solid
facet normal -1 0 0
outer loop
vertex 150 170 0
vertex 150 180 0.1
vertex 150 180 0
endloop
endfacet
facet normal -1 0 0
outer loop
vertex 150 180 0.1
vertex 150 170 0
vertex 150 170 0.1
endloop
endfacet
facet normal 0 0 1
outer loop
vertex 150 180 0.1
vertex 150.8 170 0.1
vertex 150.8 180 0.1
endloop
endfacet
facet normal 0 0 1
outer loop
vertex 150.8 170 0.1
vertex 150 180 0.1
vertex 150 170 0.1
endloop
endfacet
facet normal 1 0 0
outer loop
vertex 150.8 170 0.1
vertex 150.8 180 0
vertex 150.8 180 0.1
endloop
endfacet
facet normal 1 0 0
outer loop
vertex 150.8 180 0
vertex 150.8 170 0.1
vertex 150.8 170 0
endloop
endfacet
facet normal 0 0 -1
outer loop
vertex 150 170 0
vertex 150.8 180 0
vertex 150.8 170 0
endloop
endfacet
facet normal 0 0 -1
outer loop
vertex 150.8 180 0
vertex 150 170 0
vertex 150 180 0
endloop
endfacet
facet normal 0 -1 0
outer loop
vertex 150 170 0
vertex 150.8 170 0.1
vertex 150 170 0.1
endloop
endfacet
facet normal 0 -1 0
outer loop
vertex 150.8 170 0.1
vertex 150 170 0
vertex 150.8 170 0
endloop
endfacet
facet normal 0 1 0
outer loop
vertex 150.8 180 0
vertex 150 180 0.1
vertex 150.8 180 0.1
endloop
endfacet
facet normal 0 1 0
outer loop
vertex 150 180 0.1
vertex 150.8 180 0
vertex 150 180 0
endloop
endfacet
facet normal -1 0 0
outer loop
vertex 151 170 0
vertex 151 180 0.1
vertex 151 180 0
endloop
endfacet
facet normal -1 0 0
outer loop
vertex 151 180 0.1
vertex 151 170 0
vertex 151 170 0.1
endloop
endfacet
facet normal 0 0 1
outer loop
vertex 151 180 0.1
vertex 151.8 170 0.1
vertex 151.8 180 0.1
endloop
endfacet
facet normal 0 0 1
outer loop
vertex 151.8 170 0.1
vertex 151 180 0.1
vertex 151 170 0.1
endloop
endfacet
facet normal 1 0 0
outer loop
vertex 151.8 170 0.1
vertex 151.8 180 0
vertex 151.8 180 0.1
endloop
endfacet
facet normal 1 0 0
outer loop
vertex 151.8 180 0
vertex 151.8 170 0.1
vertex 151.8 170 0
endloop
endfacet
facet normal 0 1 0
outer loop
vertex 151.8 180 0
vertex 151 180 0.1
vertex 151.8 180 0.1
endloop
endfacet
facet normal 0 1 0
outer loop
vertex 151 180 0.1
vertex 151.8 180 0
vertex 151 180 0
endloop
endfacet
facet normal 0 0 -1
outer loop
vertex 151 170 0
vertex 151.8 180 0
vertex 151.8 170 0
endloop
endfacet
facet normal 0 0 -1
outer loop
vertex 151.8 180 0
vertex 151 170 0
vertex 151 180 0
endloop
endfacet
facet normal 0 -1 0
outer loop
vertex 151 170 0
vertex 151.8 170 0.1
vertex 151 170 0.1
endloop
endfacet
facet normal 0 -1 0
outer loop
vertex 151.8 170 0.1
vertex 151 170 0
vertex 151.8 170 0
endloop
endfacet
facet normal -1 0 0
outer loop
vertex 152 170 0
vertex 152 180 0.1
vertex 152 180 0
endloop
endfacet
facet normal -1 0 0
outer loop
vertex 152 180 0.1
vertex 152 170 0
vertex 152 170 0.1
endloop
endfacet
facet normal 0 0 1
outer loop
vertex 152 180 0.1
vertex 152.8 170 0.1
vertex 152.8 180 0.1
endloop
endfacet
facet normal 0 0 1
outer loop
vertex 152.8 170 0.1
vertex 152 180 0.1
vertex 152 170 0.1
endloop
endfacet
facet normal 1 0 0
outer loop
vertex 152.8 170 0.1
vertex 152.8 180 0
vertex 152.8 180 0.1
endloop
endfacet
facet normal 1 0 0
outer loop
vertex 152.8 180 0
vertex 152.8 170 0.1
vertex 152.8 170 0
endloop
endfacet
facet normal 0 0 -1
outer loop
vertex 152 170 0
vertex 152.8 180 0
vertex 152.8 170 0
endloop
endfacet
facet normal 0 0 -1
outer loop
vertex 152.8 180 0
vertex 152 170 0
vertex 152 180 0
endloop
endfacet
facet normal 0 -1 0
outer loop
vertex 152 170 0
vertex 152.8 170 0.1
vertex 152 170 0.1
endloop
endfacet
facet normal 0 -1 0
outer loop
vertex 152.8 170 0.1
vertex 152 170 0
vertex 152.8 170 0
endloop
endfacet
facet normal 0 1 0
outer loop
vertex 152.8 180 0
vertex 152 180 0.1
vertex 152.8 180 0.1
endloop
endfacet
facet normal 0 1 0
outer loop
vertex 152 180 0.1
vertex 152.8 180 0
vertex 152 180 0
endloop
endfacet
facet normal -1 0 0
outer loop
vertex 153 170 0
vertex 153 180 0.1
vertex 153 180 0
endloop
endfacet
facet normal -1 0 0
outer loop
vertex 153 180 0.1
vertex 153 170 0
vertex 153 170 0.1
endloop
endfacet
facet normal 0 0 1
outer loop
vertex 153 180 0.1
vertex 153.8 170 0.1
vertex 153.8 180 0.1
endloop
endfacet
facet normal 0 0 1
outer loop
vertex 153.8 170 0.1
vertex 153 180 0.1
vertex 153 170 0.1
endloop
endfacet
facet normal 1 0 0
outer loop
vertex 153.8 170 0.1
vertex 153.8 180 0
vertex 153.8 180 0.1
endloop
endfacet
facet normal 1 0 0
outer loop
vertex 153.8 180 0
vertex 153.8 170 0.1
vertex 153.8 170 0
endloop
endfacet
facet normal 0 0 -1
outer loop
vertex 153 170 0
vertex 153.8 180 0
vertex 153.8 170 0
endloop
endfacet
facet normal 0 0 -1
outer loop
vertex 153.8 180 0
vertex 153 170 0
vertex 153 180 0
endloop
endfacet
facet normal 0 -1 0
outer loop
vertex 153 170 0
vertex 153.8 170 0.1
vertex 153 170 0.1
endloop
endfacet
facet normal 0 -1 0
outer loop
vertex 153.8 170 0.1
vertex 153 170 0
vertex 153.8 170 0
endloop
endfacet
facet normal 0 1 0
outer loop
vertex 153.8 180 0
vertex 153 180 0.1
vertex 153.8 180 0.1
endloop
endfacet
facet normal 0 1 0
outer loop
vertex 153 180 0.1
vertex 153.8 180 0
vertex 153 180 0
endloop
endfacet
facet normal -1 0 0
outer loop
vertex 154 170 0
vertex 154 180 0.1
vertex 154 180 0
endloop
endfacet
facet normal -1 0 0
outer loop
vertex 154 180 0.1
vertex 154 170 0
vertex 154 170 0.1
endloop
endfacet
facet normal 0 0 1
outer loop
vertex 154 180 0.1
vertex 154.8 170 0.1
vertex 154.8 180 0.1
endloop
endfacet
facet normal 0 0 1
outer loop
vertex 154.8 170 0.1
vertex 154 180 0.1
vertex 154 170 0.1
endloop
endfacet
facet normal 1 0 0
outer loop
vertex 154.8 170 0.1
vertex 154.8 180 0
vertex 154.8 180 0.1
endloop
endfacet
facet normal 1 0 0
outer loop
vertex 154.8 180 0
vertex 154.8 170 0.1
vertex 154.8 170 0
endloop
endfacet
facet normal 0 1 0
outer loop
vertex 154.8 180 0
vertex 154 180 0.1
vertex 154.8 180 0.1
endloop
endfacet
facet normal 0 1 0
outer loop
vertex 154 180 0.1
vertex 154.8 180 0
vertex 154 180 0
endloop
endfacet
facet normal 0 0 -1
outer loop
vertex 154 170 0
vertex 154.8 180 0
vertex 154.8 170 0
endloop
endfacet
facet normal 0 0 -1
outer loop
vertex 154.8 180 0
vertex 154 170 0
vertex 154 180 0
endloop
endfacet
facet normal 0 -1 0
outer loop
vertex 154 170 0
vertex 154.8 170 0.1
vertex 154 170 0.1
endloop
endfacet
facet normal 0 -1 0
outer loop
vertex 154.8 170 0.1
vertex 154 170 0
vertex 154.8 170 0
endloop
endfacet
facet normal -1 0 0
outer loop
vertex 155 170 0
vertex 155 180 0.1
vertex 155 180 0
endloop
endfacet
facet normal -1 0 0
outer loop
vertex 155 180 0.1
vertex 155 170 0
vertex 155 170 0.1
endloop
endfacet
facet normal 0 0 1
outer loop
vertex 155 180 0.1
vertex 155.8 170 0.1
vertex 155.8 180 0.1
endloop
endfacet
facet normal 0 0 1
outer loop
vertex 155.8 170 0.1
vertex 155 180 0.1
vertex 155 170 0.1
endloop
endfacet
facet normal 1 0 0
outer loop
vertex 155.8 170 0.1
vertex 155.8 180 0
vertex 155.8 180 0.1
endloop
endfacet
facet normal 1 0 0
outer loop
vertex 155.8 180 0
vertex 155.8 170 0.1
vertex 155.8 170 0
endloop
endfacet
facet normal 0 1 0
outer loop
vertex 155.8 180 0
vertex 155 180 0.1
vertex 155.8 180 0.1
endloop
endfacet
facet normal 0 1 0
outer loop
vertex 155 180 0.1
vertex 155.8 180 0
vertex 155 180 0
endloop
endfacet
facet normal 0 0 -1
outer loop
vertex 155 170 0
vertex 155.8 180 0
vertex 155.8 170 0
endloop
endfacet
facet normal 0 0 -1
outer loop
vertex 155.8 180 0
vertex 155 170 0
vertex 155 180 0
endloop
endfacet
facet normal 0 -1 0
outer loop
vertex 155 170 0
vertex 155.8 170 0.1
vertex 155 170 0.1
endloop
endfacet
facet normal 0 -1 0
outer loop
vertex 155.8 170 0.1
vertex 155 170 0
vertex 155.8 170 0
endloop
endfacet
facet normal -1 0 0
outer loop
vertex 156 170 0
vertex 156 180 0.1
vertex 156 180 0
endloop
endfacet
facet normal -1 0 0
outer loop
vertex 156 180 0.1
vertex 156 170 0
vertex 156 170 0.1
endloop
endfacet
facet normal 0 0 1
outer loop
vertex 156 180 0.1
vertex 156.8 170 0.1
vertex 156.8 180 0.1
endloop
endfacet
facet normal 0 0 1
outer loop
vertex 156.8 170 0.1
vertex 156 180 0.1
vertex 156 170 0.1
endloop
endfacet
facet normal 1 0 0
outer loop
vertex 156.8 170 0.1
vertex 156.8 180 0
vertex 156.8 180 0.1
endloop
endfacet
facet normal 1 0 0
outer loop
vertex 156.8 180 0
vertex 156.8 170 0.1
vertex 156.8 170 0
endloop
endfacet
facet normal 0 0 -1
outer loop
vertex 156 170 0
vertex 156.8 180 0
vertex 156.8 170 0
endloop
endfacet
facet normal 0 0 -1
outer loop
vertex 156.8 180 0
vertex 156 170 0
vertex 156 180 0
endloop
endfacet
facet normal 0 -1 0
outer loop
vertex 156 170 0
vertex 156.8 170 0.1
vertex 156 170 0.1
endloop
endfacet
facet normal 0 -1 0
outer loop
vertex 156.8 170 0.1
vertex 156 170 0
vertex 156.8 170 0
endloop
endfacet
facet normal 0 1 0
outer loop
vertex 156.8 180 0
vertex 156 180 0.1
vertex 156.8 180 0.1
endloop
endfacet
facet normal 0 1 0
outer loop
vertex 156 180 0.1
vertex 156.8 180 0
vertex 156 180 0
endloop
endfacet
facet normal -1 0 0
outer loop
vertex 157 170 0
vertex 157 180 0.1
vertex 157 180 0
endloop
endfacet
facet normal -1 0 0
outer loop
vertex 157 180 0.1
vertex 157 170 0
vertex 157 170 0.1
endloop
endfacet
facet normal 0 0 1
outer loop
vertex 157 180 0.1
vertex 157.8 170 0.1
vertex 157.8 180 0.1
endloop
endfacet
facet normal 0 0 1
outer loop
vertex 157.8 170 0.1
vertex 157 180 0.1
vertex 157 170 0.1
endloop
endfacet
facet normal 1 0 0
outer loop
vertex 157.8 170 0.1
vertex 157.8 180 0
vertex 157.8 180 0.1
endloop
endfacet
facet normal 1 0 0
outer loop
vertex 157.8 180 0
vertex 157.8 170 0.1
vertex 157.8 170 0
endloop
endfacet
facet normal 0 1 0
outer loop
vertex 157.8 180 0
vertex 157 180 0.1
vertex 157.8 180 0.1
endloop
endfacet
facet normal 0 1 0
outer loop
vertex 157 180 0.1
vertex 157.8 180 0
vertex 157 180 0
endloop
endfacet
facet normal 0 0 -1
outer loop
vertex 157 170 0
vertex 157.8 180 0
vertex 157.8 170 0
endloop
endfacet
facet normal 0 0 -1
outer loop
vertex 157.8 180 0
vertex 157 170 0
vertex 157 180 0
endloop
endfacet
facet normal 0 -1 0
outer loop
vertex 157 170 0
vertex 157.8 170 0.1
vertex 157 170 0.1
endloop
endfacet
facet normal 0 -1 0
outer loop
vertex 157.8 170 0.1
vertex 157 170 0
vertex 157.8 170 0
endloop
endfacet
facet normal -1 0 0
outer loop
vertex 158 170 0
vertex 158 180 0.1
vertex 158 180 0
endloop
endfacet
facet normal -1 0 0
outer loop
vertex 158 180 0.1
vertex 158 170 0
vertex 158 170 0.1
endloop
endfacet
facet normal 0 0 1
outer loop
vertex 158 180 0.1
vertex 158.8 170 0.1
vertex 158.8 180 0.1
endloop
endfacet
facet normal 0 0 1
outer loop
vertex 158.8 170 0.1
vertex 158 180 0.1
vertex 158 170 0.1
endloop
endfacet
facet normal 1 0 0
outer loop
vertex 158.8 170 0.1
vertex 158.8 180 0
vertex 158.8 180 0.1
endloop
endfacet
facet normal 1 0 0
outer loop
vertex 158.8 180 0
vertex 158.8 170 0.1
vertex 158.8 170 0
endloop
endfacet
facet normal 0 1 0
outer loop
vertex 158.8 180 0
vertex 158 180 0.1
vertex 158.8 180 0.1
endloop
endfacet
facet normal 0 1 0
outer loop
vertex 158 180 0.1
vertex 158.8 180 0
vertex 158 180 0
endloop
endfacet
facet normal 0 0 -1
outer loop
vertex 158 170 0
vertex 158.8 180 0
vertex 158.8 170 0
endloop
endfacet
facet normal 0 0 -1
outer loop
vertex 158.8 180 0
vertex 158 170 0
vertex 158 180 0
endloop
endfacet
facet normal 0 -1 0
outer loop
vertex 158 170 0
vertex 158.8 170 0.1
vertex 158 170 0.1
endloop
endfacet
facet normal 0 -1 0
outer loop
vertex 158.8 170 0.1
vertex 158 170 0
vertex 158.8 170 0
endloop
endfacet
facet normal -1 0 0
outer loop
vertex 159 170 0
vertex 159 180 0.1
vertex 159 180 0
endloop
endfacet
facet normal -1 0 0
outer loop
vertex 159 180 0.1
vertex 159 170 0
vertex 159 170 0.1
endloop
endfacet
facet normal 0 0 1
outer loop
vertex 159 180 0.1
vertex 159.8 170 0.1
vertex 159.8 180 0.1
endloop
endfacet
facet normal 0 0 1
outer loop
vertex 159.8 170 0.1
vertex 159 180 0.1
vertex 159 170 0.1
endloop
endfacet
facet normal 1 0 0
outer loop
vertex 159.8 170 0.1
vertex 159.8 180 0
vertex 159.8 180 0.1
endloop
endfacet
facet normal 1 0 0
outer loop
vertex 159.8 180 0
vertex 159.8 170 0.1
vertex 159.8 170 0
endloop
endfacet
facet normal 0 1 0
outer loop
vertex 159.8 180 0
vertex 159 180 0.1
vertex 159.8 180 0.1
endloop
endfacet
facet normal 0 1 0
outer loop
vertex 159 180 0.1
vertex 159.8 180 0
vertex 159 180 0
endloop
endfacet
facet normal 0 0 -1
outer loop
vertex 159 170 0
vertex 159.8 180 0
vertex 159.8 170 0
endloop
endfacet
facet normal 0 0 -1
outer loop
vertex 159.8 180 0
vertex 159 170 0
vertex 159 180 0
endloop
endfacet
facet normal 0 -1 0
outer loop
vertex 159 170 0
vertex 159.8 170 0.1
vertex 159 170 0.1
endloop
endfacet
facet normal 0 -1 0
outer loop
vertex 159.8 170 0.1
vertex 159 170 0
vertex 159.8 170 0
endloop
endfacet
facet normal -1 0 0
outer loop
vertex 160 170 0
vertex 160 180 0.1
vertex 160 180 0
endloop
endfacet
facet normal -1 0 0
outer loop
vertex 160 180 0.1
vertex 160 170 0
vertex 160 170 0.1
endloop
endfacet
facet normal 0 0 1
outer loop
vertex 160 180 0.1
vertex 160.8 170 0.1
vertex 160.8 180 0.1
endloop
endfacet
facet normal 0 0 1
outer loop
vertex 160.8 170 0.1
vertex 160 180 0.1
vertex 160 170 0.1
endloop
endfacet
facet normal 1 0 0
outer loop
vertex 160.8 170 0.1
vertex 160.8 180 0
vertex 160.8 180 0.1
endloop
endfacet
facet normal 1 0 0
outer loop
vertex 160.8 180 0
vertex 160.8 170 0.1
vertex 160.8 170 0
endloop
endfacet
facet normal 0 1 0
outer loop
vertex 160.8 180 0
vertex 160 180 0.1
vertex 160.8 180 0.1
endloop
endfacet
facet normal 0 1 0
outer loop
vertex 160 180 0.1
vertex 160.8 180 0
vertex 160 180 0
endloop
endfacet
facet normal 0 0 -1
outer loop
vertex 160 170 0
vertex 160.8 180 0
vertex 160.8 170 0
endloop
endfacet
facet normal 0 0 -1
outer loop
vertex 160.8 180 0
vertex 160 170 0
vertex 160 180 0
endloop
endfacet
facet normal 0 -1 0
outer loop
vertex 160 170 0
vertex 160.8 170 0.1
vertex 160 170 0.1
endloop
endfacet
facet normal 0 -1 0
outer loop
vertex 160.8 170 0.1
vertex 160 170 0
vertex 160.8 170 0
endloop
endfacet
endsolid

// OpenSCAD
translate([10+140,10+160,0])
        for (i = [0 : 10]){
            translate([i,0,0])
                cube(size = [0.8,10,0.1]);
    }
